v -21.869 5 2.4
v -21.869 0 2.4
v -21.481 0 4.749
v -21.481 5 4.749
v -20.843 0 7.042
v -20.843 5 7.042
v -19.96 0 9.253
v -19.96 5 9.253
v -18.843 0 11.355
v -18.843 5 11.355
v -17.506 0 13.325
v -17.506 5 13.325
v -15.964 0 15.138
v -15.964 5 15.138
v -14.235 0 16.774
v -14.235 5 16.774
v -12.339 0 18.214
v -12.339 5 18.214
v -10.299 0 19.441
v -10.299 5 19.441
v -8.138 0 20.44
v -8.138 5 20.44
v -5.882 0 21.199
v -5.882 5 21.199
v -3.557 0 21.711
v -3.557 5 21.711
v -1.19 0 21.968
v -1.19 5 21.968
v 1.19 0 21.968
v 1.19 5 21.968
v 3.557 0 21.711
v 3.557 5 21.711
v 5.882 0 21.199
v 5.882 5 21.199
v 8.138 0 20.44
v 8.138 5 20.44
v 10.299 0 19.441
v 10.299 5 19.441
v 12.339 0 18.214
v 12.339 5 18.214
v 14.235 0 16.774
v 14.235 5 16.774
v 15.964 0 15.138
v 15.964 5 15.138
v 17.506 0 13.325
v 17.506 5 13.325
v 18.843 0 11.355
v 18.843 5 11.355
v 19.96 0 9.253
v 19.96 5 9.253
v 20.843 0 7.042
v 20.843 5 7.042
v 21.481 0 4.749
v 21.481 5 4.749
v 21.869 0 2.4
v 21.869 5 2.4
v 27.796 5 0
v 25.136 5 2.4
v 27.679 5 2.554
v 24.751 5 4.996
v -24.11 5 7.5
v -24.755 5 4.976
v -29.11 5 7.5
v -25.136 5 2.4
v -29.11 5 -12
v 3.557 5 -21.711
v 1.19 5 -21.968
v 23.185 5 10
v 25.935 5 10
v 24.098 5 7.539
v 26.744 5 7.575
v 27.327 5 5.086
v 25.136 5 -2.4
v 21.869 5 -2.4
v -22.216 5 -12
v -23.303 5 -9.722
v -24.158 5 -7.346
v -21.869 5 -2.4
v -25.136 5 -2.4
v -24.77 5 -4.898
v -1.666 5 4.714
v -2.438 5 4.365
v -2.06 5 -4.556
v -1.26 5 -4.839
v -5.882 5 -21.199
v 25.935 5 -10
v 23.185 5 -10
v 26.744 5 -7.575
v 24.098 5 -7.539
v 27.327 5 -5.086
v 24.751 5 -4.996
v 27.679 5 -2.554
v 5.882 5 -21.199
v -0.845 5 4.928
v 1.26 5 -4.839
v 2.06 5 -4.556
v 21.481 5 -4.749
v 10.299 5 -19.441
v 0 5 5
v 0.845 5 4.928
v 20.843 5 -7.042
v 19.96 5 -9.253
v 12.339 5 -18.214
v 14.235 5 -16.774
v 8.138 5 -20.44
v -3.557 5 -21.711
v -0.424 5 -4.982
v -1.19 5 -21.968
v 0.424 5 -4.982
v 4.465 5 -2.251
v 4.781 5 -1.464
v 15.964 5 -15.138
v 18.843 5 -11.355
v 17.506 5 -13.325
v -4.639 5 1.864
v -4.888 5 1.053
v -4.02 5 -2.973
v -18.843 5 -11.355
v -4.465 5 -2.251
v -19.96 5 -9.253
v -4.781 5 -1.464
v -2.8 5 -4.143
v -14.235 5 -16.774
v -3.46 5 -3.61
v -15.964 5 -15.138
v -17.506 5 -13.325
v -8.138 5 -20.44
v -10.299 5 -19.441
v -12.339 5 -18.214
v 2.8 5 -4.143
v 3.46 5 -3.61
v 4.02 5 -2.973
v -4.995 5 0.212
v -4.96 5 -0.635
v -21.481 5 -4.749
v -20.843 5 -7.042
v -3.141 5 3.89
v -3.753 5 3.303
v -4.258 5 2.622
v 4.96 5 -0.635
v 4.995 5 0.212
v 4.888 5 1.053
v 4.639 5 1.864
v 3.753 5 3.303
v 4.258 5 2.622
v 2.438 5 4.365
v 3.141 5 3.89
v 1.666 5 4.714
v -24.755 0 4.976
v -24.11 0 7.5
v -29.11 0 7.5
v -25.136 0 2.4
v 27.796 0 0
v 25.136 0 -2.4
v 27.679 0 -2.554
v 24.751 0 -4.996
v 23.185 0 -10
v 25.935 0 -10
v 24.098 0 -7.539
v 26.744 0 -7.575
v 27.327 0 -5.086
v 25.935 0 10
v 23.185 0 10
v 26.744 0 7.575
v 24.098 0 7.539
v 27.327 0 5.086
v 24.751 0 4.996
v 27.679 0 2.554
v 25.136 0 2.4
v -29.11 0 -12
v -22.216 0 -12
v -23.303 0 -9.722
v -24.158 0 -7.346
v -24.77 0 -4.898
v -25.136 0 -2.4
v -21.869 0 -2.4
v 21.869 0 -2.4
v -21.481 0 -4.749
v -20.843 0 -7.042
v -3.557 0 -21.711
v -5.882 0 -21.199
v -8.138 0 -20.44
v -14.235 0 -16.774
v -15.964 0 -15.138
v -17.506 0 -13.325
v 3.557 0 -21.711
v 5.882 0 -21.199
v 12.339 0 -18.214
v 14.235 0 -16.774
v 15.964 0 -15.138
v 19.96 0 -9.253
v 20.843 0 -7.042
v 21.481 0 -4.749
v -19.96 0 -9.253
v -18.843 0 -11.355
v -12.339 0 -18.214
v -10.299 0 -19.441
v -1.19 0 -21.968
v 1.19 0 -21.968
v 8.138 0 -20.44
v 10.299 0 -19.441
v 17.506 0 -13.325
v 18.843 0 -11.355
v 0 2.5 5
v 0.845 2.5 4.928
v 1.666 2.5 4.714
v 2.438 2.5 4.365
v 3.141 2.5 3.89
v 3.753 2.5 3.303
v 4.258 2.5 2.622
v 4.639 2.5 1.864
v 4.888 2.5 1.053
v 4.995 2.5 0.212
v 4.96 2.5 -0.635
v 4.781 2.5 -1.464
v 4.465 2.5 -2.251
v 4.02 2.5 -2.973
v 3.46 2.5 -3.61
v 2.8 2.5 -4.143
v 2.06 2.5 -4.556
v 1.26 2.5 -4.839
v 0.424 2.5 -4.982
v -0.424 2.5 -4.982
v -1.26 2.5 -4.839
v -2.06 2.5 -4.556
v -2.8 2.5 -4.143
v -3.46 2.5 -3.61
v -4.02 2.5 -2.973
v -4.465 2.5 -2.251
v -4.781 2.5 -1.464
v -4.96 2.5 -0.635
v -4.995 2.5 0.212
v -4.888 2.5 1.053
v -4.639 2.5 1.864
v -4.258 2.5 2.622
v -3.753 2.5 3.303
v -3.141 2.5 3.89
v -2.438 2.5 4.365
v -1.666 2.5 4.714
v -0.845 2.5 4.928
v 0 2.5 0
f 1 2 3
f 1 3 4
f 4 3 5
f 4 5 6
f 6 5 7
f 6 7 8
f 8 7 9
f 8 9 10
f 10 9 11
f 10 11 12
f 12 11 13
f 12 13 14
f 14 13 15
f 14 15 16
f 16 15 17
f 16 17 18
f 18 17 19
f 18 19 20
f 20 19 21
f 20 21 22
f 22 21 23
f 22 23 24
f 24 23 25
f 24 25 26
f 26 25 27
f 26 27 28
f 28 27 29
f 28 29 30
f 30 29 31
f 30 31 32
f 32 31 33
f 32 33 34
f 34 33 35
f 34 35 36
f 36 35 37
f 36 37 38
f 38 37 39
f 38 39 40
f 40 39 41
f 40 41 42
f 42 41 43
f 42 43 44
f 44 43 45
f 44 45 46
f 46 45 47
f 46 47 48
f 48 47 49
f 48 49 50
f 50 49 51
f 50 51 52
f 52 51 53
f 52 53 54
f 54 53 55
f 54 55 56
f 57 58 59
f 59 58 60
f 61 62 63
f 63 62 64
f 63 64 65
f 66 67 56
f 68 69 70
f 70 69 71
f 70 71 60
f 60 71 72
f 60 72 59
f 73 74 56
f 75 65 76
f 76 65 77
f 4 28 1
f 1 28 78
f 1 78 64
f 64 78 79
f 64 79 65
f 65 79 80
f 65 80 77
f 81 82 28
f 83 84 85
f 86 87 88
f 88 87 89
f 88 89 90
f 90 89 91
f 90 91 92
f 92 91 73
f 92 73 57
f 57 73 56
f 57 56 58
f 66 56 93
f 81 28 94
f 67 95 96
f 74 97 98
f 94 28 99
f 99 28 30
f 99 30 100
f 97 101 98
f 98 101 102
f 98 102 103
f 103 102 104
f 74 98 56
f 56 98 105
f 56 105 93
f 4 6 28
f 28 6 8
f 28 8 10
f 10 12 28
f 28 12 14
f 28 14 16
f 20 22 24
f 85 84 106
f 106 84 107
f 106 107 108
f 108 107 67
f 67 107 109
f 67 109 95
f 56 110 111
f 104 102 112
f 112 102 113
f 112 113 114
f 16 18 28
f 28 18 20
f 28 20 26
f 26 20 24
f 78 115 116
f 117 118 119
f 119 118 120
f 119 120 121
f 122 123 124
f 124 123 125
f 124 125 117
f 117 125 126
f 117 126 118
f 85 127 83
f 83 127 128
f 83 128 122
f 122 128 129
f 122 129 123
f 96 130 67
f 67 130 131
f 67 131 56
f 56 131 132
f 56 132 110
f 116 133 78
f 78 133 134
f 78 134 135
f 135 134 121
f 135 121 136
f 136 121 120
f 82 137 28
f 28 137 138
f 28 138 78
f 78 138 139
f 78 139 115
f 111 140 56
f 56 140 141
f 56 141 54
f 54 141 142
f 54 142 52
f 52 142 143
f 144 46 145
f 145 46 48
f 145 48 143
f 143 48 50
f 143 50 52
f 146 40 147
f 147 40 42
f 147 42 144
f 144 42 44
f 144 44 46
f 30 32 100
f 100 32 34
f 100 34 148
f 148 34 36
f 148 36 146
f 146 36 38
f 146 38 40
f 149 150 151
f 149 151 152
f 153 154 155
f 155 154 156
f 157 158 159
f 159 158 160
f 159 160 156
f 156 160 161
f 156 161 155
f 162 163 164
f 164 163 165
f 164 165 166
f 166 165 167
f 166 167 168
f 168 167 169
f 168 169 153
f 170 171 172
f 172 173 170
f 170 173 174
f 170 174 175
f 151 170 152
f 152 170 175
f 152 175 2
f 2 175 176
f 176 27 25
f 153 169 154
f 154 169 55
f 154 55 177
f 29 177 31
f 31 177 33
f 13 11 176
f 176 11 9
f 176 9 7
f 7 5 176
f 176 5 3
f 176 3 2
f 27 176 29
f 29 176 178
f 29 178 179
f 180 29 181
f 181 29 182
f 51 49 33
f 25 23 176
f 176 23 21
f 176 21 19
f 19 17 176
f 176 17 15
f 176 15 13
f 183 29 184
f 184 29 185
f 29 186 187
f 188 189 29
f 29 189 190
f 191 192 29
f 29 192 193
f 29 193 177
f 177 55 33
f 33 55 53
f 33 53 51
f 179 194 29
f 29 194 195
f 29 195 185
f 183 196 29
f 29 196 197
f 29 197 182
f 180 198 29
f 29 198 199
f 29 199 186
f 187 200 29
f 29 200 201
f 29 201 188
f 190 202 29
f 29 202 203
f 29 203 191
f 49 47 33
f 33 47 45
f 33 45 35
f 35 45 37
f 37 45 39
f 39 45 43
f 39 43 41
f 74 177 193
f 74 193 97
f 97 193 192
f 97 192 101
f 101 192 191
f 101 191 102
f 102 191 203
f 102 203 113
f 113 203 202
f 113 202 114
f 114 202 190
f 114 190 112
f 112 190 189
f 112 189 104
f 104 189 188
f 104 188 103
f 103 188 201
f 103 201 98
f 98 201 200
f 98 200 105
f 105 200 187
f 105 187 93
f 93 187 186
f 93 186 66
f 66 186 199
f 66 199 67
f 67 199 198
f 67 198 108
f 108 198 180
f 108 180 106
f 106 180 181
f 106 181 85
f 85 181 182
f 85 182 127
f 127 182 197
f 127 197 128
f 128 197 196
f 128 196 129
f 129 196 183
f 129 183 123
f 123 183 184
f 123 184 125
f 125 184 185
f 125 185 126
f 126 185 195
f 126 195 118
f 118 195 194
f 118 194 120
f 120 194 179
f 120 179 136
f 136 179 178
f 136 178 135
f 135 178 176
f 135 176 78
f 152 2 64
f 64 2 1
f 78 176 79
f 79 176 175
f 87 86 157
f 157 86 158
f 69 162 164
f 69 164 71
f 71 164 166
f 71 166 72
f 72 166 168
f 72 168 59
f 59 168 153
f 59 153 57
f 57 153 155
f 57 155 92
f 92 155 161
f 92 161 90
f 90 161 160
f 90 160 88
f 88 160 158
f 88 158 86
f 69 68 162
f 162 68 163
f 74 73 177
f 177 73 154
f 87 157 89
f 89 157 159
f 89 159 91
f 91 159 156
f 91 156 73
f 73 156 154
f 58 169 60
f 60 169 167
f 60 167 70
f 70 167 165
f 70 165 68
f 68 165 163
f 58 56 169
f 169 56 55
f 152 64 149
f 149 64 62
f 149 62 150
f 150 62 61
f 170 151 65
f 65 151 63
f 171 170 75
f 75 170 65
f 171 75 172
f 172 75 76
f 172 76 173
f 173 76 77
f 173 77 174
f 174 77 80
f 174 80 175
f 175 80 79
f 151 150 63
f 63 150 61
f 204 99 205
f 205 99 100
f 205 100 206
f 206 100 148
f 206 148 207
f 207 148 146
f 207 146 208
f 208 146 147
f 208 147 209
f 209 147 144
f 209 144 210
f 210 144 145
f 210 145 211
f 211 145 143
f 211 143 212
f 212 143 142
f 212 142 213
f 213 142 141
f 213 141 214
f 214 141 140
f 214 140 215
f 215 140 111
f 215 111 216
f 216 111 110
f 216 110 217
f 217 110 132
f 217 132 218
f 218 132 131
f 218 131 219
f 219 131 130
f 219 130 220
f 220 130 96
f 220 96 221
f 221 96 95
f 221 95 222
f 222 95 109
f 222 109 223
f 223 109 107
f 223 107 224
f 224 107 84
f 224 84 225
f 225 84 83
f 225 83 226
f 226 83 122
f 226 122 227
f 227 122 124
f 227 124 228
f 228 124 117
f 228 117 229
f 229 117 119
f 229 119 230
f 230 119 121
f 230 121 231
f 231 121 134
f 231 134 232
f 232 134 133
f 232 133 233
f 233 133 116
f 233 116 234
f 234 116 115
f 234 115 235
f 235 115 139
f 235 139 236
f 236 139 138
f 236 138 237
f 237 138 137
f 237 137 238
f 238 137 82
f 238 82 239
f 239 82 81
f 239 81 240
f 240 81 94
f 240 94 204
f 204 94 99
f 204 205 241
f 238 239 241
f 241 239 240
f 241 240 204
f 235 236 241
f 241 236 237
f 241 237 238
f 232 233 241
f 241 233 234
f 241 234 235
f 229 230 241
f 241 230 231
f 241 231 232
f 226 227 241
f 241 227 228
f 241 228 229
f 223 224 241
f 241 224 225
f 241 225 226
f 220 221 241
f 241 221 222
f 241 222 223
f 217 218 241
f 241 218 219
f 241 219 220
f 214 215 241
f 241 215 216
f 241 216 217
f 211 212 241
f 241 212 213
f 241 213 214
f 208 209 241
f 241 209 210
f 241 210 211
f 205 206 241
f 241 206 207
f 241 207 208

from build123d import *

# Parameters (mm, degrees)
SKETCH1_R           = 22
SKETCH1_W           = 4
SKETCH1_H           = 4.8
BOSS_EXTRUDE1_DEPTH = 5
BOSS_EXTRUDE2_DEPTH = 5
SKETCH3_R           = 5
CUT_EXTRUDE1_DEPTH  = 2.5


with BuildPart() as part:
    # Sketch1 → Boss-Extrude1 (new body)
    with BuildSketch(Plane(origin=(0, 0, 0), x_dir=(1, 0, 0), z_dir=(0, 1, 0))):
        Circle(SKETCH1_R)
        with Locations((-23.868699093, 0)):
            Rectangle(SKETCH1_W, SKETCH1_H)
        with BuildLine():
            Line((21.868699093, 2.4), (25.135681809, 2.4))
            ThreePointArc((25.135681809, 2.4), (24.45754678, 6.276217454), (23.185394109, 10))
            Line((23.185394109, 10), (25.935394109, 10))
            ThreePointArc((25.935394109, 10), (27.796486605, 0), (25.935394109, -10))
            Line((25.935394109, -10), (23.185394109, -10))
            ThreePointArc((23.185394109, -10), (24.45754678, -6.276217454), (25.135681809, -2.4))
            Line((25.135681809, -2.4), (21.868699093, -2.4))
            Line((21.868699093, -2.4), (21.868699093, 2.4))
        make_face()
    extrude(amount=BOSS_EXTRUDE1_DEPTH)

    # Sketch2 → Boss-Extrude2 (add)
    with BuildSketch(Plane(origin=(0, 5, 0), x_dir=(1, 0, 0), z_dir=(0, 1, 0))):
        with BuildLine():
            Line((-29.110423057, 12), (-22.216266563, 12))
            ThreePointArc((-22.216266563, 12), (-25.131713885, 2.441199952), (-24.110423057, -7.5))
            Line((-24.110423057, -7.5), (-29.110423057, -7.5))
            Line((-29.110423057, -7.5), (-29.110423057, 12))
        make_face()
    extrude(amount=-BOSS_EXTRUDE2_DEPTH)

    # Sketch3 → Cut-Extrude1 (cut)
    with BuildSketch(Plane(origin=(0, 5, 0), x_dir=(1, 0, 0), z_dir=(0, 1, 0))):
        Circle(SKETCH3_R)
    extrude(amount=-CUT_EXTRUDE1_DEPTH, mode=Mode.SUBTRACT)


solid = part.part
